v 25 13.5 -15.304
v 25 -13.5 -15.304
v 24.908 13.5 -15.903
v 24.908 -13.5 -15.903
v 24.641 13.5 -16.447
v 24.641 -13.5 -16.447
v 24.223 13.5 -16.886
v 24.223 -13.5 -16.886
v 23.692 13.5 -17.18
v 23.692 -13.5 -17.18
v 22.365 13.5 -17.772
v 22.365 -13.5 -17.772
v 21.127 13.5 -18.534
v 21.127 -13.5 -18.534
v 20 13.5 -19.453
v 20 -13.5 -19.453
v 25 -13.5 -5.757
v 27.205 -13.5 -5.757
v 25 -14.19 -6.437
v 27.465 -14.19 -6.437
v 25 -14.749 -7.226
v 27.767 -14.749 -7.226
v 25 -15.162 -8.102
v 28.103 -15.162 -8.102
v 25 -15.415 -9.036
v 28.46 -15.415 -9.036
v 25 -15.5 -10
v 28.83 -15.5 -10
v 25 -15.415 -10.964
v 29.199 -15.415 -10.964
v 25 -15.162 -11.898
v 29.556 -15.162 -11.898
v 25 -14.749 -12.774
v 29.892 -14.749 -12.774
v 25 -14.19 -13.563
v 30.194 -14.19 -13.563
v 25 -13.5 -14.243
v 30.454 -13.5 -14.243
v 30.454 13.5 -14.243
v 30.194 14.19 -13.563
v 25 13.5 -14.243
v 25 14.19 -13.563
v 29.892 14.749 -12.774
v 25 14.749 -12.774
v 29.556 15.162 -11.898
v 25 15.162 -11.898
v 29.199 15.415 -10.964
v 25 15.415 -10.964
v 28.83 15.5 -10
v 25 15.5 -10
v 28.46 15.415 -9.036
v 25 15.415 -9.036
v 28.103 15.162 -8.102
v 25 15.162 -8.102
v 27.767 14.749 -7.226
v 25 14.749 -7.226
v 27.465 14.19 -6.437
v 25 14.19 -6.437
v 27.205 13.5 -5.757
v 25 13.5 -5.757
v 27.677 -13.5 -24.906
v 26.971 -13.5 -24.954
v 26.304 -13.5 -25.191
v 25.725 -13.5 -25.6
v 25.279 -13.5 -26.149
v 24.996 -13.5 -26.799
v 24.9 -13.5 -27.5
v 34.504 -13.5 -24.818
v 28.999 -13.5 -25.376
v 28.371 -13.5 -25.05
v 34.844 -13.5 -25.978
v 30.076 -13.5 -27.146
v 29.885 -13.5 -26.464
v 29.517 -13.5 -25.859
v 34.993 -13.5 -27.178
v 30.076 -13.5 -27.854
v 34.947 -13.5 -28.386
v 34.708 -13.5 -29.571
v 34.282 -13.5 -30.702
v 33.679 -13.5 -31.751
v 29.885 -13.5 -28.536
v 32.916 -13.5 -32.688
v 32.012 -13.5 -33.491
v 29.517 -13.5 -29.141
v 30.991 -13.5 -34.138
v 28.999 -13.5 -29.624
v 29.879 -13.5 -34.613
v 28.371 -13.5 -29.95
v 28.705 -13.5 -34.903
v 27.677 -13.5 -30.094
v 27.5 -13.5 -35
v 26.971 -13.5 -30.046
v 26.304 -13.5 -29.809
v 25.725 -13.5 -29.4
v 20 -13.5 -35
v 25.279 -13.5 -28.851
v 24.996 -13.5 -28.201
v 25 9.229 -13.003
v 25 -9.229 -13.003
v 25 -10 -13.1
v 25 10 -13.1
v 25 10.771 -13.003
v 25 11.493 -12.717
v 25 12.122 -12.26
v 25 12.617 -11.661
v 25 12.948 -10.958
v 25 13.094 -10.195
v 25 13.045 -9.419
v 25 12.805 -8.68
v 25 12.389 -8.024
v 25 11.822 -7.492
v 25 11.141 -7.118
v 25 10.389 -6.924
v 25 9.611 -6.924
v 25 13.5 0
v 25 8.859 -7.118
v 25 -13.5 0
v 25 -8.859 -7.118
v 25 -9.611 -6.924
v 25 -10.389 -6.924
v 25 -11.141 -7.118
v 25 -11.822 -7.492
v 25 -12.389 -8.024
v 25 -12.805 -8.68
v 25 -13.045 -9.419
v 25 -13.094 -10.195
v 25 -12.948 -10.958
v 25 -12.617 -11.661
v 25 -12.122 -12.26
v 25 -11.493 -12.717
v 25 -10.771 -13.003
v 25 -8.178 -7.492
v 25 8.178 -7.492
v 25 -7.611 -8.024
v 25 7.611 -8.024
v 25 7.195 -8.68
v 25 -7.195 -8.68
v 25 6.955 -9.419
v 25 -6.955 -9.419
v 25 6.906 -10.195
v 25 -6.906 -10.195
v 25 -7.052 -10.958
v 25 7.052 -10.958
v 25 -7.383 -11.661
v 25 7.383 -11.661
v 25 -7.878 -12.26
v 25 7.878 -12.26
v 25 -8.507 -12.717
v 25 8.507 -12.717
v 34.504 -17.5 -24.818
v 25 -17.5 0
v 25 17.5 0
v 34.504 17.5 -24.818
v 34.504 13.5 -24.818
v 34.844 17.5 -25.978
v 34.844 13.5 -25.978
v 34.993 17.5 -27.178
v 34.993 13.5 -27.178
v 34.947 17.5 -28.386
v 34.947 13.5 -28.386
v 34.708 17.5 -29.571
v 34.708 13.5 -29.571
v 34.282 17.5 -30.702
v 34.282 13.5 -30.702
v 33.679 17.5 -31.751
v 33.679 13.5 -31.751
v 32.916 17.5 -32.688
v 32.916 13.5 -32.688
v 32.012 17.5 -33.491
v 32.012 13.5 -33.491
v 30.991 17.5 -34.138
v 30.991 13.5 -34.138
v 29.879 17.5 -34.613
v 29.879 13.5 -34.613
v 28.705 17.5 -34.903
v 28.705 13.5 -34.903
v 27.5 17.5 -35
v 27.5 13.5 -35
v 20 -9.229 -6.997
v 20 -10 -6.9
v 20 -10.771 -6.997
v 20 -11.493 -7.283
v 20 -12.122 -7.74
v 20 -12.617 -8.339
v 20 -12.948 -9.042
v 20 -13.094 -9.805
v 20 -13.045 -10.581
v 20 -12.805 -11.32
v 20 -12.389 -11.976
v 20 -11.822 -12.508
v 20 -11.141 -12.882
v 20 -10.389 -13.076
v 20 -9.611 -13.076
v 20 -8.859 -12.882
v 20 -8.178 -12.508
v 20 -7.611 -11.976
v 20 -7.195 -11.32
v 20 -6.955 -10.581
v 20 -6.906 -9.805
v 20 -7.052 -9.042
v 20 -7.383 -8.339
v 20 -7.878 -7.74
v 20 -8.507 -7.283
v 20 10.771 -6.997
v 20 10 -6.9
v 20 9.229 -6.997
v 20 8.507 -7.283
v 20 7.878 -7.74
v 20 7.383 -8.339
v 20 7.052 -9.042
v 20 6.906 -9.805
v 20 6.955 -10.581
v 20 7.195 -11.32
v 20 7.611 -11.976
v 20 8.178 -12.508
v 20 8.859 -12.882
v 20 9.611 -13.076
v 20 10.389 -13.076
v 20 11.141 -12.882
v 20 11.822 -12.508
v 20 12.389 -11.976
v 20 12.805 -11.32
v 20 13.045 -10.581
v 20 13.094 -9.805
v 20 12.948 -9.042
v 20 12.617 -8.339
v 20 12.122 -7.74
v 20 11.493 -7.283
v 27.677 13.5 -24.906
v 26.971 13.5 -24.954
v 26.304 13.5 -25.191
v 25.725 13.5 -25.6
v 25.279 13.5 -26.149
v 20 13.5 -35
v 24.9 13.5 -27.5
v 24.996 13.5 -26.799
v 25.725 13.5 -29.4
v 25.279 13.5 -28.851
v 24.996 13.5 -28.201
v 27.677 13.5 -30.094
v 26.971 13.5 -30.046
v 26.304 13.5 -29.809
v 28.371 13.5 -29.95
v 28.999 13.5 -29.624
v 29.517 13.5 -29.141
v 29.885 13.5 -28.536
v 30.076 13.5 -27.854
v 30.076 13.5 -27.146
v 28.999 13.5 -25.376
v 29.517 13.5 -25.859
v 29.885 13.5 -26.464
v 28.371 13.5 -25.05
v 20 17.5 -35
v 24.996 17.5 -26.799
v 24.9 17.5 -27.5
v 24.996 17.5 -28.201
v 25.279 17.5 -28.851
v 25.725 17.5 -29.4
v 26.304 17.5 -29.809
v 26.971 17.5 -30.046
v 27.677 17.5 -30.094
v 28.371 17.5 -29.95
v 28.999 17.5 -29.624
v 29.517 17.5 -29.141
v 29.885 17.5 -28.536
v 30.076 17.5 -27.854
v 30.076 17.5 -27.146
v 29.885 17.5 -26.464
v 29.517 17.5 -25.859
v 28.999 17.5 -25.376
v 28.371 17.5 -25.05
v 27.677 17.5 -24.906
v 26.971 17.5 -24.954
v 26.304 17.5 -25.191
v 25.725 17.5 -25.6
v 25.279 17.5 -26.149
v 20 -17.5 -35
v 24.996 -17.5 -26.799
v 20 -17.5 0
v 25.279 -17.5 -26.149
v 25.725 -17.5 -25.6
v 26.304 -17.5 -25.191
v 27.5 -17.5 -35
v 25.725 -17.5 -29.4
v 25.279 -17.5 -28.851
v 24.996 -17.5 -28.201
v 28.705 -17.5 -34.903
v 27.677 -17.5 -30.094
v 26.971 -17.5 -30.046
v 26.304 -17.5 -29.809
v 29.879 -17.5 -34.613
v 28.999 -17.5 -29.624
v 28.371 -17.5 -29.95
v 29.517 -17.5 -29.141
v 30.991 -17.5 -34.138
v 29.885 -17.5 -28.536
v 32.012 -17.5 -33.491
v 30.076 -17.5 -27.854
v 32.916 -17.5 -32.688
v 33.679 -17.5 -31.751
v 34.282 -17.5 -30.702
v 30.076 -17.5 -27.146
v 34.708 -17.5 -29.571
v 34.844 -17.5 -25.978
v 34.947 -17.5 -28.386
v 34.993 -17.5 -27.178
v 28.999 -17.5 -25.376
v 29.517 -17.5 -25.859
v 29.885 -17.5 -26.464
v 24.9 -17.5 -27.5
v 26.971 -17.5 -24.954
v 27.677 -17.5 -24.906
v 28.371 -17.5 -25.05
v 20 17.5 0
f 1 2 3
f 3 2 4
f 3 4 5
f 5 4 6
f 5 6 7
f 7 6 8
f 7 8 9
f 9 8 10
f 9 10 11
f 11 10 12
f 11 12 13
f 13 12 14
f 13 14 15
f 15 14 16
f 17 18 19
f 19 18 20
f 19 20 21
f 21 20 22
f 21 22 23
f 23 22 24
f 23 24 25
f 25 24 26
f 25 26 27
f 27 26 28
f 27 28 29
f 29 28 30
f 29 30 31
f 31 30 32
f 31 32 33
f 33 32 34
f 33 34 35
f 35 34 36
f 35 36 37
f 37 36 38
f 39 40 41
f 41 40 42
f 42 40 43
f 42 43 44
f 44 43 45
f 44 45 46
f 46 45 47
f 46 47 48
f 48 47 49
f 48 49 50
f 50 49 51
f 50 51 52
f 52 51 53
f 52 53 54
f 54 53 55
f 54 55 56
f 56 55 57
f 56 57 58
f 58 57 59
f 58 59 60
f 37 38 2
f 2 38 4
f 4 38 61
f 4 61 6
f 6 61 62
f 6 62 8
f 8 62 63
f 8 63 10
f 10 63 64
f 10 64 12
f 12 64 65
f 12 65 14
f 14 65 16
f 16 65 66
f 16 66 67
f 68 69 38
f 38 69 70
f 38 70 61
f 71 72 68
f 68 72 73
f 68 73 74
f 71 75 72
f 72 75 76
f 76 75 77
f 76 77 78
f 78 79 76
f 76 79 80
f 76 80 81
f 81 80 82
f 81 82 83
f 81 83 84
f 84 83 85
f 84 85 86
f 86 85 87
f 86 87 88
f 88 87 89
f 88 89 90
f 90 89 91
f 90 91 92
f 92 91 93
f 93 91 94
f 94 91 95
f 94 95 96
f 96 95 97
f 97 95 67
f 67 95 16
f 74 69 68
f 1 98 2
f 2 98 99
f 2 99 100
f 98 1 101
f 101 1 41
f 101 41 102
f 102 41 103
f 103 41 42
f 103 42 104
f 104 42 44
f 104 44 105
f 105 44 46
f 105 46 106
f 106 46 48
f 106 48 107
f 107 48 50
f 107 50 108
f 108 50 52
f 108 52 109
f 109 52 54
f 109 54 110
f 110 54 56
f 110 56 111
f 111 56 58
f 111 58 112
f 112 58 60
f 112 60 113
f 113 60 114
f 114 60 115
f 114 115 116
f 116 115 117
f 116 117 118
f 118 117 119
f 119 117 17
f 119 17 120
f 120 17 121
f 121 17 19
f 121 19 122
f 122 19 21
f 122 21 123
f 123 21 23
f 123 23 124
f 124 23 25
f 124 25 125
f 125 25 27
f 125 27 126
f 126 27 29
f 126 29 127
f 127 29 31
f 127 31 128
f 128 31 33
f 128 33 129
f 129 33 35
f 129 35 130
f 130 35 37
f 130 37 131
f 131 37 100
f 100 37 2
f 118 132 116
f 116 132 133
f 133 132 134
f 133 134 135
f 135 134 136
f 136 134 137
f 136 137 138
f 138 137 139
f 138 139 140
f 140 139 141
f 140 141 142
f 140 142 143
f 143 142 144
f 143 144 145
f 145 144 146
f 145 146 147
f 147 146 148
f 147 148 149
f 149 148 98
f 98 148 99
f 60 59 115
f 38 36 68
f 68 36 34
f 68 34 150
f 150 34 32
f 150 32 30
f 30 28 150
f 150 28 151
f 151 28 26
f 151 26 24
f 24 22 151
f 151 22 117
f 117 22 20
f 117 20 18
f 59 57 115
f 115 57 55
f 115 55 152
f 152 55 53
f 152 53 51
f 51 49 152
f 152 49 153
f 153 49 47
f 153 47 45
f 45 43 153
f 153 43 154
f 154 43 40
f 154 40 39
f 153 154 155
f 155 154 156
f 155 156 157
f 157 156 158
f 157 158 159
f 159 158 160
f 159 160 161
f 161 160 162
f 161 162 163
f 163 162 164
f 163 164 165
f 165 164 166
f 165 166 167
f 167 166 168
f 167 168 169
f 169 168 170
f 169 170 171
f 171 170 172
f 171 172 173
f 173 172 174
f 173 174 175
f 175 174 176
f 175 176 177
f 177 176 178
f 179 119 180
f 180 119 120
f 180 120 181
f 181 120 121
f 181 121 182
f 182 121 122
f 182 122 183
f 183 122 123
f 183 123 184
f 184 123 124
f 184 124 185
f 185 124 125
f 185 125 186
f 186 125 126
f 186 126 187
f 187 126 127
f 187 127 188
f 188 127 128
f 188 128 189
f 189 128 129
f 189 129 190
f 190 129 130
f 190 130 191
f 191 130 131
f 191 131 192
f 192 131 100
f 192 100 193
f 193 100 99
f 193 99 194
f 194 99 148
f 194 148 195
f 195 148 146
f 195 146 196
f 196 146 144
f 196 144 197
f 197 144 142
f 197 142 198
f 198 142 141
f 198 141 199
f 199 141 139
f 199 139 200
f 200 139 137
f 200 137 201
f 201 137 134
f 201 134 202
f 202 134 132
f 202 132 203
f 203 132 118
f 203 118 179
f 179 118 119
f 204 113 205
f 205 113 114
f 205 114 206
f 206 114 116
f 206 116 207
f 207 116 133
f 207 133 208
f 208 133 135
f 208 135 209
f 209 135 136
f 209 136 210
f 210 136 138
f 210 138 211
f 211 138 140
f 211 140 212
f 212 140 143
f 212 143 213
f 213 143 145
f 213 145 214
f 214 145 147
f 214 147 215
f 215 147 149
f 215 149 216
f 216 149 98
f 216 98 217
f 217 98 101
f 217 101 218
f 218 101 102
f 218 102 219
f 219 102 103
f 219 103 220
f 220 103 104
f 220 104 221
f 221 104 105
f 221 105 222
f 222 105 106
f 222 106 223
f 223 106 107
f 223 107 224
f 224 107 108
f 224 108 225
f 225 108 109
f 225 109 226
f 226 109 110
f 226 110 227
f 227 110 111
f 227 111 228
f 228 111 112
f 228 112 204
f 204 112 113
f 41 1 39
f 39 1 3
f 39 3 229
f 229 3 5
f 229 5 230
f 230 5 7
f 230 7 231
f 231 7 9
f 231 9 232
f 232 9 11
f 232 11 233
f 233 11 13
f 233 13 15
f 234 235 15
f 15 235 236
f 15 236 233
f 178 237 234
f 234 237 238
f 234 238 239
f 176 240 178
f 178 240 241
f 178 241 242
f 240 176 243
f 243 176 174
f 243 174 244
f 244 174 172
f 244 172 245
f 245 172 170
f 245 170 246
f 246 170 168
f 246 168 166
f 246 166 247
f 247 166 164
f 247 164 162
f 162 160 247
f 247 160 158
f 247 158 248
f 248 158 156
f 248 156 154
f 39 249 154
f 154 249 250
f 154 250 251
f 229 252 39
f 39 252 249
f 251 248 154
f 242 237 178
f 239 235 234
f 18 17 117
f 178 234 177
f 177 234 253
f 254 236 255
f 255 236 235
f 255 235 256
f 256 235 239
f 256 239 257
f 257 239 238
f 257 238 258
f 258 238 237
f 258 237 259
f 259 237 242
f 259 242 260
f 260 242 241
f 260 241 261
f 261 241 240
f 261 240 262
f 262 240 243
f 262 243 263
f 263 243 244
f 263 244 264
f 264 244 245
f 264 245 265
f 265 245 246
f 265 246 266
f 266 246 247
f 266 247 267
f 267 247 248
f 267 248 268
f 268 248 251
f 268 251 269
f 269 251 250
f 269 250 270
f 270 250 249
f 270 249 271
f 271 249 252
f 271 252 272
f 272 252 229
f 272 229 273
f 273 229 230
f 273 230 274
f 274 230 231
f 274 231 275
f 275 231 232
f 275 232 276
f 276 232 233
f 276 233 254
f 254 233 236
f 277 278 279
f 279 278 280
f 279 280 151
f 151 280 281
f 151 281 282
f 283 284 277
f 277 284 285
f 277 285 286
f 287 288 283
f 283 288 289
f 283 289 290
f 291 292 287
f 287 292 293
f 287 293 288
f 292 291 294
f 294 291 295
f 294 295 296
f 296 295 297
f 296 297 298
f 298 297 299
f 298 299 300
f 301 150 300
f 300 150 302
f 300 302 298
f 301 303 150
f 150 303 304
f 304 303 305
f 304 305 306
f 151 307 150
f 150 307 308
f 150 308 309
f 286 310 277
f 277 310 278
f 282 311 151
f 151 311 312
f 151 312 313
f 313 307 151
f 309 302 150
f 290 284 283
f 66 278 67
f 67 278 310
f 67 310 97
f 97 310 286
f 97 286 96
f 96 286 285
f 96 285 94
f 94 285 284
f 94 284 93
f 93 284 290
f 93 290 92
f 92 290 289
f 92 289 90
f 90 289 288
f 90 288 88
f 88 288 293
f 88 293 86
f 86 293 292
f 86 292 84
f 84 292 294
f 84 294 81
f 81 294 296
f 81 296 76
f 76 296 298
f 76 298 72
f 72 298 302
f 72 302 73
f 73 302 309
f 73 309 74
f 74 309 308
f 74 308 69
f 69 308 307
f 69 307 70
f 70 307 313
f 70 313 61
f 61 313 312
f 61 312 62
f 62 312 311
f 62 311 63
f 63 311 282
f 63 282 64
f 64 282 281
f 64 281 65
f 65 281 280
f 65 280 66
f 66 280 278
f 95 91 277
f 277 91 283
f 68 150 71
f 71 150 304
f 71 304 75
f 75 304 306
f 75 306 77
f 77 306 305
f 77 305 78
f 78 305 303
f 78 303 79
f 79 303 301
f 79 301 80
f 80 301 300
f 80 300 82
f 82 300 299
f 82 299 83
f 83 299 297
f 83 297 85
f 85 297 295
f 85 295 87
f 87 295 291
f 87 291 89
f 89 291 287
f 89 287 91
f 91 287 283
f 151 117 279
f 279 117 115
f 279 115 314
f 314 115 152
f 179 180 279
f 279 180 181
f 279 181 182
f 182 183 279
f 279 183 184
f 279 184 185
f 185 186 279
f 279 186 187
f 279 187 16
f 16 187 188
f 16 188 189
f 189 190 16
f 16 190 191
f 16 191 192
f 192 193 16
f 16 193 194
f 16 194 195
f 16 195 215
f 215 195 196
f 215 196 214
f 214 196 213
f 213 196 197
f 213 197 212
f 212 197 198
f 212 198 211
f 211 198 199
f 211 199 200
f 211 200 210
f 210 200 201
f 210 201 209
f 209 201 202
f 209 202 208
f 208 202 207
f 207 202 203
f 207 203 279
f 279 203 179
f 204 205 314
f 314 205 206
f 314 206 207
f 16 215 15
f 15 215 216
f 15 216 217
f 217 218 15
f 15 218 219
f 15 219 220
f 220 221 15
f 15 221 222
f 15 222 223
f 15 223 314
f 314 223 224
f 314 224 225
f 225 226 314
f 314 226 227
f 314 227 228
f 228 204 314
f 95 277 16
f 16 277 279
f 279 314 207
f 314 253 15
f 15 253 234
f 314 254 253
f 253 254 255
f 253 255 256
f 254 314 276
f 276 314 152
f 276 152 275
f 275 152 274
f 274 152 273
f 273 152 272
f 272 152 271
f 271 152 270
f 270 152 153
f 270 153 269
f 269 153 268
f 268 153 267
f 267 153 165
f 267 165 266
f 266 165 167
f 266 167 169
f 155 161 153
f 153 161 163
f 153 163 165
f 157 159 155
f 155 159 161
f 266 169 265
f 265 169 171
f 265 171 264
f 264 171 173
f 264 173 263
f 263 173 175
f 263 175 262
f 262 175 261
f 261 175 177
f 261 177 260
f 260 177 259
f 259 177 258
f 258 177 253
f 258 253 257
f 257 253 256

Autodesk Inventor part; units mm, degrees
ref_plane "YZ Plane" through (0, 0, 0) normal (1, 0, 0) x (0, 1, 0)
ref_plane "XZ Plane" through (0, 0, 0) normal (0, 1, 0) x (-1, 0, 0)
ref_plane "XY Plane" through (0, 0, 0) normal (0, 0, 1) x (1, 0, 0)
sketch "Sketch1" plane through (0, 0, 0) normal (0, 1, 0) x (-1, 0, 0)
  line L0 (0, 0) -> (-20, 0) construction
  line L1 (-20, 0) -> (-20, -20) construction
  line L2 (-20, -20) -> (0, -20) construction
  line L3 (0, -20) -> (0, 0) construction
  circle A0 centre (-27.5, -27.5) radius 2.6
  circle A1 centre (-27.5, -27.5) radius 9 construction
  line L4 (-20, 0) -> (-25, 0)
  line L5 (-25, 0) -> (-25, -20)
  line L6 (-20, -20) -> (-20, 0)
  arc A2 (-27.5, -20) -> (-27.5, -35) centre (-27.5, -27.5) ccw
  line L7 (-27.5, -35) -> (-20, -35)
  line L8 (-20, -20) -> (-20, -35)
  arc A3 (-27.5, -35) -> (-27.5, -20) centre (-27.5, -27.5) ccw construction
  line L9 (-27.5, -20) -> (-25, -20)
  circle A4 centre (-27.5, -27.5) radius 11
  line L10 (-34.504, -24.8178) -> (-25, 0)
  point P0 (-20, -19.4533)
  point P1 (-31.6263, -17.3032)
  dimension "d0" = 20
  dimension "d1" = 20
  dimension "d4" = 5.2
  dimension "d11" = 7.5
  dimension "d12" = 18
  dimension "d14" = 7.5
  dimension "d15" = 5
  dimension "d16" = 15
  dimension "d34" = 2
  dimension "d36" = 0
extrude "Extrusion1" add sketch "Sketch1" along normal mid plane 35 contours L6 A4 L5 L4 | L6 L8 L7 A2 L9 L5 A4
extrude "Extrusion4" cut sketch "Sketch1" along normal mid plane 27 contours A4 L10 A2 L7 L8 L6 | L6 L8 L7 A2 L9 L5 A4 | L5 L9 A2 L10 A4
sketch "Sketch3" plane through (25, -17.5, 0) normal (1, 0, 0) x (0, 0, -1)
  line L0 (35, 35) -> (0, 35) construction
  line L1 (10, 34.6833) -> (10, 0) construction
  circle A0 centre (10, 27.5) radius 3.1
  circle A1 centre (10, 7.5) radius 3.1
  circle A2 centre (10, 27.5) radius 5.5
  circle A3 centre (10, 7.5) radius 5.5
  line L2 (20, 0) -> (0, 0) projected
  line L3 (0, 0) -> (0, 35) projected
  point P0 (20, 35)
  point P1 (16.4634, 0)
  dimension "d22" = 6.2
  dimension "d23" = 6.2
  dimension "d24" = 7.5
  dimension "d41" = 11
  dimension "d42" = 11
  dimension "d43" = 7.5
  dimension "d50" = 10
extrude "Extrusion3" cut sketch "Sketch3" against normal up to surface (5 mm away) contours A0 | A1
extrude "Extrusion5" add sketch "Sketch1" along normal mid plane 35 contours L5 A4 L10 | L5 L9 A2 L10 A4
extrude "Extrusion6" cut sketch "Sketch1" along normal mid plane 27 contours L5 A4 L10 | L5 L9 A2 L10 A4
extrude "Extrusion7" cut sketch "Sketch3" along normal up to next
fillet "Fillet3" radius 2 1 edges at (25, 0, -16.7879)
properties part number "IdlerPulley Holder"
